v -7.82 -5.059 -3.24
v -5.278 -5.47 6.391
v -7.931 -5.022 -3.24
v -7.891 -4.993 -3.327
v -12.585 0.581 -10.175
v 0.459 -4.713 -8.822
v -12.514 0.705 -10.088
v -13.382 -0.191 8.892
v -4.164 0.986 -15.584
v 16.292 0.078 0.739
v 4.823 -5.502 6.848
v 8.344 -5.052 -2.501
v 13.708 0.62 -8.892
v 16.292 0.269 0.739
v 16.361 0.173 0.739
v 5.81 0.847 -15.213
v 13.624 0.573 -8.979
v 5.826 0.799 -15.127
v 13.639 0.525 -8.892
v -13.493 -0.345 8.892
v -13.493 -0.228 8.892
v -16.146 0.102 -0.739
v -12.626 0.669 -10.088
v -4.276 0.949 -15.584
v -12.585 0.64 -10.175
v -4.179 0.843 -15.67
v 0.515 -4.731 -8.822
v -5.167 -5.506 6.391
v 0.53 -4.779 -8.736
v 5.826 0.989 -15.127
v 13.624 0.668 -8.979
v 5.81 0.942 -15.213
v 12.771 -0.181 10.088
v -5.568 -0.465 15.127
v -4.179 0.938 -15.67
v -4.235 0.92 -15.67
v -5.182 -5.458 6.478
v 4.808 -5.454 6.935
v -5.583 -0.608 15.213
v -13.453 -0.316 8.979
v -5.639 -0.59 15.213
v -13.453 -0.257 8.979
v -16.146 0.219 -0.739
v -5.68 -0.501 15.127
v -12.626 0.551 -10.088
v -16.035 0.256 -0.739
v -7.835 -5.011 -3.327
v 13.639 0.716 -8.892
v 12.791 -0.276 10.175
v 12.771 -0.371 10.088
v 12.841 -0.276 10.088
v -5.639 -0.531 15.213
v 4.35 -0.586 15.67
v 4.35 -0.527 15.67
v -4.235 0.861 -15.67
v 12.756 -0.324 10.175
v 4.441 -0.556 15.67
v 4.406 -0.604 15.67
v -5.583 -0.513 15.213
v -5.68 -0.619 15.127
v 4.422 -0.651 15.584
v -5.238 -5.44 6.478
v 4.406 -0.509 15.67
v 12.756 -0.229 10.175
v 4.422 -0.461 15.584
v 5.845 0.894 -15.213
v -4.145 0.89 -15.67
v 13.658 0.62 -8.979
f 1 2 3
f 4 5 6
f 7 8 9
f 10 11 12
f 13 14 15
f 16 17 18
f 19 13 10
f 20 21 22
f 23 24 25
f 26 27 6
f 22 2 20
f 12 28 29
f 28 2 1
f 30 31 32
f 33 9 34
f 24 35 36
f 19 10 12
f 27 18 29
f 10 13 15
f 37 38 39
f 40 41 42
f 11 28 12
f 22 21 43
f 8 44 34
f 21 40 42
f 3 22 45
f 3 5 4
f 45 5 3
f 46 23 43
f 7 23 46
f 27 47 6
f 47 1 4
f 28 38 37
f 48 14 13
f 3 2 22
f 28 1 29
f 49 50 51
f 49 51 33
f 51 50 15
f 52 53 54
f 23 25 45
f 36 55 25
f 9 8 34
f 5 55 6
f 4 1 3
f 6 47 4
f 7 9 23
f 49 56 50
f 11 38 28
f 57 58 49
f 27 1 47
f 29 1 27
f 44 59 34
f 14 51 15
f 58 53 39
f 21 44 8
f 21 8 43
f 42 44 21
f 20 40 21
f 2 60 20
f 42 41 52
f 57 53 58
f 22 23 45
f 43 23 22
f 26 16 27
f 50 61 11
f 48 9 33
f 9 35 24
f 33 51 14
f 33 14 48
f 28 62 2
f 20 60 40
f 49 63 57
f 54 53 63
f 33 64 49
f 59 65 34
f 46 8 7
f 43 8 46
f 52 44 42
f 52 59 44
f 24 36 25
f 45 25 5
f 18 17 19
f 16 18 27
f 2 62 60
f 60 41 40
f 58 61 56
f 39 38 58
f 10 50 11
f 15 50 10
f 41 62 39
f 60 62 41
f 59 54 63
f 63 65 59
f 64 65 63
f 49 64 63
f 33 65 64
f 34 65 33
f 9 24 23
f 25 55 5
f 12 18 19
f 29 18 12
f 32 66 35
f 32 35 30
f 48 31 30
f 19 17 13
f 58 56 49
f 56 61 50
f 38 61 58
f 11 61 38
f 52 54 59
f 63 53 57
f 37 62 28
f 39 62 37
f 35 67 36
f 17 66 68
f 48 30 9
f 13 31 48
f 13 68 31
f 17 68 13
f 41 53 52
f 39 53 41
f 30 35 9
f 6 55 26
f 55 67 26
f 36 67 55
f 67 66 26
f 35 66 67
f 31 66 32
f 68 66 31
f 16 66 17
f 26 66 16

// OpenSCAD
// Auto-generated OpenSCAD file

    inner_points = 10*[[-1.6065576544292892, 0.016072137049278255, -0.07392451573739472], [1.6261308566625277, 0.017340658440594285, 0.07392451573739472], [-1.341249269607953, -0.02863275383436257, 0.8892021289332714], [-1.2544774711527342, 0.061019293960932294, -1.0088145079982527], [1.2740506733859727, -0.027606498471059754, 1.0088145079982527], [1.3608224718411914, 0.06204554932423511, -0.8892021289332714], [-0.5598911021901387, -0.0560196298357948, 1.512683783220194], [-0.4194913830246398, 0.08904043065802253, -1.5583716465477804], [0.43906458525787834, -0.055627635168149996, 1.5583716465477804], [0.5794643044233774, 0.08943242532566734, -1.512683783220194], [-0.7850562096059552, -0.49636791351195547, -0.3240056440417419], [0.8312880459399532, -0.4957336528162974, -0.25008112830434714], [-0.5197478247846188, -0.5410728043955961, 0.6391210006289243], [0.4792078626633983, -0.5406808097279513, 0.6848088639565106], [0.04992987852213929, -0.4683467768148652, -0.87356278259127]];

    outer_points = 10*[[1.6180339268989221, 0.0, -0.00044738568277260886], [-1.6180339268989221, 0.0, 0.00044738568277260886], [1.3087541264448814, 0.031991353396446154, -0.950880212524824], [1.309279762228037, -0.031991353396446154, 0.9501563272840178], [-1.309279762228037, 0.031991353396446154, -0.9501563272840178], [-1.3087541264448814, -0.031991353396446154, 0.950880212524824], [0.49957473260557367, 0.051763097141559244, -1.5381091174121158], [0.5004252291684228, -0.051763097141559244, 1.5378326178540822], [-0.5004252291684228, 0.051763097141559244, -1.5378326178540822], [-0.49957473260557367, -0.051763097141559244, 1.5381091174121158], [0.8090847148034257, -0.5342757895268477, 0.24480871103153803], [-0.8089492120954964, -0.5342757895268477, 0.24525609671431062], [0.499804914349385, -0.5022844361304015, -0.7056241158105132], [-0.5001950474246115, -0.5022844361304015, -0.7053476162524797], [0.0002301817438113309, -0.5540475332719608, 0.8324850016016027]];

    // Convex hull for inner set (I)
    module inner_hull() {
        hull() {
            for (p = inner_points) {
                translate(p) sphere(r=0.1);
            }
        }
    }

    // Convex hull for outer set (O) minus inner hull (O \ I)
    module outer_minus_inner() {
        difference() {
            hull() {
                for (p = outer_points) {
                    translate(p) sphere(r=0.1);
                }
            }
            inner_hull(); // Subtract inner hull
        }
    }

    // Convex hull for outer set (O) minus all translated inner hulls
    module outer_minus_AllTranslationInner() {
        difference() {
            hull() {
                for (p = outer_points) {
                    translate(p) sphere(r=0.1);
                }
            }
            hull() {
                translate([0,0,50]) inner_hull();
                translate([0,0,-50]) inner_hull();
            }; // Subtract translated inner hulls
        }
    }

    // Difference between outer_minus_inner and outer_minus_AllTranslationInner
    module outer_minus_inner_diff() {
        difference() {
            // Outer minus inner
            difference() {
                hull() {
                    for (p = outer_points) {
                        translate(p) sphere(r=0.1);
                    }
                }
                inner_hull();
            }

            // Subtract Outer minus AllTranslationInner
            difference() {
                hull() {
                    for (p = outer_points) {
                        translate(p) sphere(r=0.1);
                    }
                }
                hull() {
                    translate([0,0,50]) inner_hull();
                    translate([0,0,-50]) inner_hull();
                };
            }
        }
    }

    // Rendering all with colors applied
    color([1, 0, 0, 0.5]) inner_hull(); // Transparent red
    
